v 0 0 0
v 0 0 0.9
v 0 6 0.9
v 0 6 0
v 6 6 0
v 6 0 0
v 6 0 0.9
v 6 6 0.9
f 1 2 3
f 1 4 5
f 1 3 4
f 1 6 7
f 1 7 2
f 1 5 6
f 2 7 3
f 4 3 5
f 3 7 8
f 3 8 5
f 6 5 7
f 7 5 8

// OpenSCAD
/* Warning, this is a very basic generator with a lot of approximation 
input data : [VQFN, SAB, 6x6x0.9mm, 40, , A, C04-21404A]
generated by com.zoubworld.electronics.cad.model3d.Basic
Date : Sun Feb 15 10:50:49 CET 2026
*/

//body
color("black")
translate([0,0,0])
cube([6.0,6.0,0.9], center=false);
